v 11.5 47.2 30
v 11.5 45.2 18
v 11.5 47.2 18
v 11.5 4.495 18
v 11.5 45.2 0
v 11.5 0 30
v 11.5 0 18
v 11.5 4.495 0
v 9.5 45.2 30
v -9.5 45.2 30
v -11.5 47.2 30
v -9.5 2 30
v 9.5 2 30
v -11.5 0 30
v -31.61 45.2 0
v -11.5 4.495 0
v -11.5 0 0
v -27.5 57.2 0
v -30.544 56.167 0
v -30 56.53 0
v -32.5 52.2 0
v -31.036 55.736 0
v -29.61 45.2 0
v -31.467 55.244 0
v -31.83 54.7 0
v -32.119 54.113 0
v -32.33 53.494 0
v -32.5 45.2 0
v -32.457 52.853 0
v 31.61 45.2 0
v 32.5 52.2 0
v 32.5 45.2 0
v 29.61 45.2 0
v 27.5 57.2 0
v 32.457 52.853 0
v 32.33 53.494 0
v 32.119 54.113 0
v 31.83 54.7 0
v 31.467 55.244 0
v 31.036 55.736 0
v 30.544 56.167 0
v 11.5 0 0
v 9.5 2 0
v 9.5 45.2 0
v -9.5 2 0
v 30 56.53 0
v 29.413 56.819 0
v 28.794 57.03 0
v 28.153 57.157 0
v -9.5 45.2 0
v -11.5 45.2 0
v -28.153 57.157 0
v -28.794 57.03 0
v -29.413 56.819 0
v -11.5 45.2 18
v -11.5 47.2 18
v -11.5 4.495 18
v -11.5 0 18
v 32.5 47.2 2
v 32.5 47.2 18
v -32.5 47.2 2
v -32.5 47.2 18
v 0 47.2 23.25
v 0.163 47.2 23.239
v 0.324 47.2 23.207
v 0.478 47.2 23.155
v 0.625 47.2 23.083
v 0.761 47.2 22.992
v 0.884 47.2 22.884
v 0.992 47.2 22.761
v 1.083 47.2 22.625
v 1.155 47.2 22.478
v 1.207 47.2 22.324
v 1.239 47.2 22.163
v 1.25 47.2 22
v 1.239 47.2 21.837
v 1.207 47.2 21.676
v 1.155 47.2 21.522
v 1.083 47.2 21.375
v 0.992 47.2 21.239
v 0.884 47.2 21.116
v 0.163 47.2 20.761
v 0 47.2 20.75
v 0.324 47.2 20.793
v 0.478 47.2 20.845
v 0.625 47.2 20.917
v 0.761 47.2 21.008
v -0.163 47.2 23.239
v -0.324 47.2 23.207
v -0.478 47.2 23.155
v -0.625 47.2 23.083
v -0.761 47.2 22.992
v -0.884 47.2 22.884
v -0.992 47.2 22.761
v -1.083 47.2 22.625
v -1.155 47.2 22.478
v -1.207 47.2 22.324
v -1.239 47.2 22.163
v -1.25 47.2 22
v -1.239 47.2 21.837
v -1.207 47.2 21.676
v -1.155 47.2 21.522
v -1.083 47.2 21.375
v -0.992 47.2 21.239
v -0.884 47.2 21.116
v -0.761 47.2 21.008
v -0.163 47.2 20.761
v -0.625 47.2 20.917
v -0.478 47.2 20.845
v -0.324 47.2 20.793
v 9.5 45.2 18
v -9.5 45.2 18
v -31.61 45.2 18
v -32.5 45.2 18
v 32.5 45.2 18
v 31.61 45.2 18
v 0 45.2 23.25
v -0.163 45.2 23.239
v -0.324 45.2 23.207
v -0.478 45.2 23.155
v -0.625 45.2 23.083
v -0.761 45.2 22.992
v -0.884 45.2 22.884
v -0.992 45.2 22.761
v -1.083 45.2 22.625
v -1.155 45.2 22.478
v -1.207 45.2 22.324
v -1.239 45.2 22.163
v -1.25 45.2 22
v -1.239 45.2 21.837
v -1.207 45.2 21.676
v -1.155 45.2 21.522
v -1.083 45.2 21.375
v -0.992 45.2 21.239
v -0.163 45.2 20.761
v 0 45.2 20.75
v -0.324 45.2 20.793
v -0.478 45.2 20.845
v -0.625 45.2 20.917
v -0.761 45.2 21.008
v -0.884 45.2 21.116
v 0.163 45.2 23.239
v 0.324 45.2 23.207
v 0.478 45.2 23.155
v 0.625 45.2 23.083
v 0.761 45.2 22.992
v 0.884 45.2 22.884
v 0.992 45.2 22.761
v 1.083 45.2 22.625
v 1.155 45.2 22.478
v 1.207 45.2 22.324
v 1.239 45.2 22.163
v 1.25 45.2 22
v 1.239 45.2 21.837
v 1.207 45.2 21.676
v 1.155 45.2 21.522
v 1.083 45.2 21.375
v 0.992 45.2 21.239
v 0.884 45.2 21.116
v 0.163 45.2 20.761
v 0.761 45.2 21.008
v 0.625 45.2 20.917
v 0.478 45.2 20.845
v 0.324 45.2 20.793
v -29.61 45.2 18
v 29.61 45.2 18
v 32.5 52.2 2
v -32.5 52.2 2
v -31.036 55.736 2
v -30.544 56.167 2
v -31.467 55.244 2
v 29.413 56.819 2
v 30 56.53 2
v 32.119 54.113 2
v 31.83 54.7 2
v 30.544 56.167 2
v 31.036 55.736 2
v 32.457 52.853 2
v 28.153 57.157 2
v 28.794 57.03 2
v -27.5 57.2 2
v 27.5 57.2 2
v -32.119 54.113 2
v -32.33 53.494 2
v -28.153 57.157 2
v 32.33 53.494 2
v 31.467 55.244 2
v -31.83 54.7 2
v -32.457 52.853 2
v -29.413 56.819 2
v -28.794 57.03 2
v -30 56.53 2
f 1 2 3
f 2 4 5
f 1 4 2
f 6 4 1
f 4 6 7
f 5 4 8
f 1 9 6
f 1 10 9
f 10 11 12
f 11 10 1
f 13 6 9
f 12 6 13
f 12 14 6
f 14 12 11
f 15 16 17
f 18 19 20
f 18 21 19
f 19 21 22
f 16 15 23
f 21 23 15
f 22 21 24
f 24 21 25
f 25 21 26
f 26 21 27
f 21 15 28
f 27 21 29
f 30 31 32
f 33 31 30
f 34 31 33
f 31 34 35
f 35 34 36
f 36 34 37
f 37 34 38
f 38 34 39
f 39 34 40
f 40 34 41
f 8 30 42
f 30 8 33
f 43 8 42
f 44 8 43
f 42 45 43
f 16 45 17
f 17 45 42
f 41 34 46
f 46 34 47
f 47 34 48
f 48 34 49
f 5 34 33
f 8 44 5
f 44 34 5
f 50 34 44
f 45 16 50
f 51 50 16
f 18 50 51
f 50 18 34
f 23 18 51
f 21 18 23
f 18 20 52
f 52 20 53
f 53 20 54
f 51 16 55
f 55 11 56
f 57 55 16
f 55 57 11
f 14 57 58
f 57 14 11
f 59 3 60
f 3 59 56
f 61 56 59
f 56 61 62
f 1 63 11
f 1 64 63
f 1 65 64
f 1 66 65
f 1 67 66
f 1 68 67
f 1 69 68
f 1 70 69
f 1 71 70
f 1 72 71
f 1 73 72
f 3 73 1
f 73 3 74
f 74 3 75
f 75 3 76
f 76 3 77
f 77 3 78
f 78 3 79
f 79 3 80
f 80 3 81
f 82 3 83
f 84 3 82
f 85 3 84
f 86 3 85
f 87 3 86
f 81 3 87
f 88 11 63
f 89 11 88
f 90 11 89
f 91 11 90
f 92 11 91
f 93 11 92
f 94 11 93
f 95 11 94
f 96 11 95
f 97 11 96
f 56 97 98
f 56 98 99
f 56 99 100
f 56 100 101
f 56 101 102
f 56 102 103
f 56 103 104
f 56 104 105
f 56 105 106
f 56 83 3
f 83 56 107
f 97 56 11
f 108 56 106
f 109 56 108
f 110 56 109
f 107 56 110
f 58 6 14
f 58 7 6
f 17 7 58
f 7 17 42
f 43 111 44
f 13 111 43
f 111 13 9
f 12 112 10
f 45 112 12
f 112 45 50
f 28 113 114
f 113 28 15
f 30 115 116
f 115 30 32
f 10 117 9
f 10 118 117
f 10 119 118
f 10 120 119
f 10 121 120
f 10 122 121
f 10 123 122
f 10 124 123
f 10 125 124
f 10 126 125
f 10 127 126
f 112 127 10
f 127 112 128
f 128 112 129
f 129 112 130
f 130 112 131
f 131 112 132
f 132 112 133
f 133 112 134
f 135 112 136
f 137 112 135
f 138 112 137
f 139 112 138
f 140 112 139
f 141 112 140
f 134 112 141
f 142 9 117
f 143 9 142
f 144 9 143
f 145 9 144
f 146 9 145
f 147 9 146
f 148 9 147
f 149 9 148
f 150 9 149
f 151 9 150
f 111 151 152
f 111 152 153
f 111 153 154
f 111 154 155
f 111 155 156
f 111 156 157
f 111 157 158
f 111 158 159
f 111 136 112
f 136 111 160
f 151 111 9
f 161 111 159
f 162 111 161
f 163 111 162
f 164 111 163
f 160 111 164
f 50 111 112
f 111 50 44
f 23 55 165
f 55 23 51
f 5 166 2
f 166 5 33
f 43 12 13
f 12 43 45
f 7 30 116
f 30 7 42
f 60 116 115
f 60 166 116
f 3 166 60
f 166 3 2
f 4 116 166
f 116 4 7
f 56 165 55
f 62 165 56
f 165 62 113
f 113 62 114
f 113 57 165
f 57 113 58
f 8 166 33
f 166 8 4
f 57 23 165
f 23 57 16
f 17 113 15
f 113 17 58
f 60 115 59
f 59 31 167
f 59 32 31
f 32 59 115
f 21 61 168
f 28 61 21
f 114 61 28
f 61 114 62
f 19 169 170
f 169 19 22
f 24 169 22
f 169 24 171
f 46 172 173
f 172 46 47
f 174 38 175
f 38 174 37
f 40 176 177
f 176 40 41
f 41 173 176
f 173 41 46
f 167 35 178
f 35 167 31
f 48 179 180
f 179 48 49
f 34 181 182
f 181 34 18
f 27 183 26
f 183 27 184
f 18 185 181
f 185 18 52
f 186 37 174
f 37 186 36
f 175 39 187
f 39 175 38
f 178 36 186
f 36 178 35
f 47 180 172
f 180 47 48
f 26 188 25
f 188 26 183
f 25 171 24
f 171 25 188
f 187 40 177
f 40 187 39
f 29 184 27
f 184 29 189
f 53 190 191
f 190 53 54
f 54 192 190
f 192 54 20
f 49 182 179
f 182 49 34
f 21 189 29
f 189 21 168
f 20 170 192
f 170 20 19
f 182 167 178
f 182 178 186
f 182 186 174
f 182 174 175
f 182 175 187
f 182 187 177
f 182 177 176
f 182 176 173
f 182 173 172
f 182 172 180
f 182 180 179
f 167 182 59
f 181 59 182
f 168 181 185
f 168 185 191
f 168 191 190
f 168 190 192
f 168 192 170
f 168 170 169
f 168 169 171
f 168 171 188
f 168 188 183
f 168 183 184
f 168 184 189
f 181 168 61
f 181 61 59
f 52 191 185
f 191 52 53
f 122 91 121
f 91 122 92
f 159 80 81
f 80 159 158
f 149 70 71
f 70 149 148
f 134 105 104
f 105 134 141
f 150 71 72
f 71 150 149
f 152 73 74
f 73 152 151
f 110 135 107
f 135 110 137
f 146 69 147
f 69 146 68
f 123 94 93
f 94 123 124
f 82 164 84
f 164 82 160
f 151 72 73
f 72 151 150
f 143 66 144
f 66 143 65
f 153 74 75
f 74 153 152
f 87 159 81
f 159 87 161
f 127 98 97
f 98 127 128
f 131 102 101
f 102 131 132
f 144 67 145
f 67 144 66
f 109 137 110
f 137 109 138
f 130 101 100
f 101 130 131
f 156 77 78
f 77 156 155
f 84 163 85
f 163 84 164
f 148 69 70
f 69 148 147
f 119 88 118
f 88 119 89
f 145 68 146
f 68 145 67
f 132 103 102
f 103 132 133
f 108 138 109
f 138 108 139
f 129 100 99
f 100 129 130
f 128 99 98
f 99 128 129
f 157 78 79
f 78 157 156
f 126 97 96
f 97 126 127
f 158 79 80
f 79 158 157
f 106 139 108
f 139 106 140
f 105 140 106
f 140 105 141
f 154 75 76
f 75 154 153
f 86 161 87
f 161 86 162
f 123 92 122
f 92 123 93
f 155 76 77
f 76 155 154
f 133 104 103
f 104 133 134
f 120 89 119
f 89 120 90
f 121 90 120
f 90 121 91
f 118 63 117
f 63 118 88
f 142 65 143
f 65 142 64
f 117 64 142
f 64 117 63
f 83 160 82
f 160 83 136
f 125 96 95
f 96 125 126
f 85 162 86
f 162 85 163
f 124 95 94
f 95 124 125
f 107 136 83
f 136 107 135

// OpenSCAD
// =====================================================================
//  Nasouvací držák na dřevěný profil 19 x 43 mm
//  ------------------------------------------------------------------
//  Souřadný systém:
//    X = šířka (vodorovně napříč), model je vycentrovaný na X = 0
//    Y = výška (svisle), Y = 0 je dole, profil stojí vyšší stranou nahoru
//    Z = směr nasunutí profilu (tunel je v ose Z průchozí)
// =====================================================================

is_poc = false; // Mene hlubsi varianta, na vyzkouseni

// ---------- Parametry profilu a nasunutí ----------
inner_x = 19;   // vnitřní šířka tunelu (kratší strana profilu + vůle)
inner_y = 43.2;   // vnitřní výška tunelu (delší strana profilu + vůle)
insert_len = is_poc ? 15 : 30;  // délka nasouvací části (hloubka tunelu v ose Z)
wall = 2;         // tloušťka pláště

// ---------- Parametry základny a výztuh ----------
base_w = 65;      // celková šířka základny (shodná se šířkou jazýčku)
base_t = wall;    // tloušťka horní desky základny (zapuštěná do horní stěny tunelu)
rib_depth = is_poc ? 15 : 18;   // vyska bočních výztuh v ose Z (není potřeba celých 20)
rib_wall = wall;  // tloušťka stěny (rámu) duté výztuhy

// ---------- Parametry jazýčku (háčku) ----------
tongue_w = base_w;       // šířka jazýčku
tongue_thick = 2;    // tloušťka stěny jazýčku (v ose Z)
tongue_depth = 10;   // hloubka jazýčku (jak daleko směřuje dolů, osa Y)
tongue_round = 5;  // poloměr zaoblení koncových hran jazýčku

// ---------- Odvozené vnější rozměry ----------
outer_x = inner_x + 2 * wall;   // 25.6 mm
outer_y = inner_y + 2 * wall;   // 49.6 mm

// Jemnost zaoblení
$fn = 48;

// ---------- Výchozí pohled kamery (aby model nebyl mimo záběr) ----------
// Model je v ose Y posunutý nahoru (Y ≈ 0–53), proto kamera míří na jeho
// střed, ne na počátek [0,0,0].
$vpt = [0, 25, 10];     // bod, na který se kamera dívá (střed modelu)
$vpr = [60, 0, 135];    // rotace pohledu (sklon a natočení)
$vpd = 200;            // vzdálenost kamery (zoom)

// =====================================================================
//  Hlavní sestava
// =====================================================================
module drzak() {
    difference() {
        union() {
            // Nasouvací tunel (s průchozím otvorem)
            insert_tunnel();

            // Horní základna + boční výztuhy + jazýček
            top_base();
            side_ribs();
            tongue();
        }

        // Otvor na šroubek v horní (kratší) stěně tunelu
        if (!is_poc) { // pro zkoušku není potřeba, navíc by se špatně vrtalo
            screw_hole();
        }
    }
}

// ---------------------------------------------------------------------
//  Otvor na šroubek – svislý (osa Y) skrz horní stěnu tunelu na straně
//  jazýčku. Vystředěný na X = 0, v ose Z přibližně 10 mm od zadní hrany
//  tunelu (Z = 20). Průměr 2.5 mm.
// ---------------------------------------------------------------------
module screw_hole() {
    screw_d = 2.5;
    screw_z = insert_len - 8;          // poloha v ose Z (hloubka nasunutí)

    translate([0, outer_y + 0.1, screw_z])
        rotate([90, 0, 0])     // válec z osy Z do osy Y (shora dolů)
            cylinder(h = 2 * wall + 0.2, d = screw_d);
}

// ---------------------------------------------------------------------
//  Nasouvací tunel – obdélníkový průchozí tunel otevřený na obou stranách
// ---------------------------------------------------------------------
module insert_tunnel() {
    difference() {
        // Vnější těleso, vycentrované na X = 0
        translate([-outer_x / 2, 0, 0])
            cube([outer_x, outer_y, insert_len]);

        // Vnitřní průchozí otvor (přesah 0.1 na obou koncích kvůli čistému řezu)
        translate([-inner_x / 2, wall, -0.1])
            cube([inner_x, inner_y, insert_len + 0.2]);
    }
}

// ---------------------------------------------------------------------
//  Horní základna – plochá deska 60 mm široká přes horní stranu tunelu.
//  Je zapuštěná do horní stěny tunelu (horní plocha v rovině outer_y),
//  takže nad tunelem nevzniká dvojitá tloušťka – přes šířku tunelu se
//  jen překryje s jeho stěnou, navíc rozšiřuje horní plochu do stran.
// ---------------------------------------------------------------------
module top_base() {
    translate([-base_w / 2, outer_y - base_t, 0])
        cube([base_w, base_t, rib_depth]);
}

// ---------------------------------------------------------------------
//  Boční výztuhy – jedna šikmá deska (úhlopříčka původního trojúhelníku)
//  napříč od hrany základny dolů k patě tunelu. Členy podél základny ani
//  podél tunelu nejsou potřeba. Vnější hrana desky lícuje s úhlopříčkou
//  (roh základny → pata tunelu), tloušťka jde dovnitř k tunelu, takže
//  deska nepřečnívá za základnu. Tloušťka rib_wall, hloubka rib_depth.
// ---------------------------------------------------------------------
module side_ribs() {
    p_top = [base_w / 2,  outer_y];   // horní vnější roh (hrana základny)
    p_bot = [outer_x / 2, 0];         // dolní vnější roh (pata tunelu)

    for (mx = [1, -1]) {              // pravá (+X) a levá (-X) strana
        scale([mx, 1, 1])
        linear_extrude(height = rib_depth)
            polygon(points = [
                p_top,                  // horní vnější (roh základny)
                p_bot,                  // dolní vnější (pata tunelu)
                p_bot - [rib_wall, 0],  // dolní vnitřní (k tunelu)
                p_top - [rib_wall, 0],  // horní vnitřní
            ]);
    }
}

// ---------------------------------------------------------------------
//  Jazýček (háček) – visí z předního přesahu základny směrem dolů,
//  ven od modelu (mimo těleso tunelu). Šířka 60, tloušťka stěny 4,
//  hloubka 10. Zaoblené jsou koncové (boční) hrany, ne podélné.
//  Zapadne do vodorovného otvoru a zajistí profil proti vysunutí.
// ---------------------------------------------------------------------
module tongue() {
    // Jazýček vychází z horní plochy (rovina outer_y)
    y_bottom = outer_y;

    // Profil leží v rovině šířka (X) × hloubka (Y) a vytlačí se v ose Z
    // (tloušťka). Tím se zaoblí koncové hrany běžící napříč tloušťkou.
    translate([0, y_bottom, 0])
        linear_extrude(height = tongue_thick)
            tongue_profile();
}

// 2D profil jazýčku v rovině (X = šířka, Y = hloubka).
// Zaoblené jsou jen dva vnější rohy (hrany mířící ven, y = d);
// strana přiléhající k držáku (y = 0) zůstává ostrá.
module tongue_profile() {
    w = tongue_w;
    d = tongue_depth;
    r = tongue_round;

    hull() {
        // tělo s ostrou hranou u držáku
        translate([-w / 2, 0]) square([w, d - r]);
        // zaoblené vnější rohy
        translate([-w / 2 + r, d - r]) circle(r = r);
        translate([ w / 2 - r, d - r]) circle(r = r);
    }
}

// =====================================================================
//  Render
// =====================================================================
drzak();
